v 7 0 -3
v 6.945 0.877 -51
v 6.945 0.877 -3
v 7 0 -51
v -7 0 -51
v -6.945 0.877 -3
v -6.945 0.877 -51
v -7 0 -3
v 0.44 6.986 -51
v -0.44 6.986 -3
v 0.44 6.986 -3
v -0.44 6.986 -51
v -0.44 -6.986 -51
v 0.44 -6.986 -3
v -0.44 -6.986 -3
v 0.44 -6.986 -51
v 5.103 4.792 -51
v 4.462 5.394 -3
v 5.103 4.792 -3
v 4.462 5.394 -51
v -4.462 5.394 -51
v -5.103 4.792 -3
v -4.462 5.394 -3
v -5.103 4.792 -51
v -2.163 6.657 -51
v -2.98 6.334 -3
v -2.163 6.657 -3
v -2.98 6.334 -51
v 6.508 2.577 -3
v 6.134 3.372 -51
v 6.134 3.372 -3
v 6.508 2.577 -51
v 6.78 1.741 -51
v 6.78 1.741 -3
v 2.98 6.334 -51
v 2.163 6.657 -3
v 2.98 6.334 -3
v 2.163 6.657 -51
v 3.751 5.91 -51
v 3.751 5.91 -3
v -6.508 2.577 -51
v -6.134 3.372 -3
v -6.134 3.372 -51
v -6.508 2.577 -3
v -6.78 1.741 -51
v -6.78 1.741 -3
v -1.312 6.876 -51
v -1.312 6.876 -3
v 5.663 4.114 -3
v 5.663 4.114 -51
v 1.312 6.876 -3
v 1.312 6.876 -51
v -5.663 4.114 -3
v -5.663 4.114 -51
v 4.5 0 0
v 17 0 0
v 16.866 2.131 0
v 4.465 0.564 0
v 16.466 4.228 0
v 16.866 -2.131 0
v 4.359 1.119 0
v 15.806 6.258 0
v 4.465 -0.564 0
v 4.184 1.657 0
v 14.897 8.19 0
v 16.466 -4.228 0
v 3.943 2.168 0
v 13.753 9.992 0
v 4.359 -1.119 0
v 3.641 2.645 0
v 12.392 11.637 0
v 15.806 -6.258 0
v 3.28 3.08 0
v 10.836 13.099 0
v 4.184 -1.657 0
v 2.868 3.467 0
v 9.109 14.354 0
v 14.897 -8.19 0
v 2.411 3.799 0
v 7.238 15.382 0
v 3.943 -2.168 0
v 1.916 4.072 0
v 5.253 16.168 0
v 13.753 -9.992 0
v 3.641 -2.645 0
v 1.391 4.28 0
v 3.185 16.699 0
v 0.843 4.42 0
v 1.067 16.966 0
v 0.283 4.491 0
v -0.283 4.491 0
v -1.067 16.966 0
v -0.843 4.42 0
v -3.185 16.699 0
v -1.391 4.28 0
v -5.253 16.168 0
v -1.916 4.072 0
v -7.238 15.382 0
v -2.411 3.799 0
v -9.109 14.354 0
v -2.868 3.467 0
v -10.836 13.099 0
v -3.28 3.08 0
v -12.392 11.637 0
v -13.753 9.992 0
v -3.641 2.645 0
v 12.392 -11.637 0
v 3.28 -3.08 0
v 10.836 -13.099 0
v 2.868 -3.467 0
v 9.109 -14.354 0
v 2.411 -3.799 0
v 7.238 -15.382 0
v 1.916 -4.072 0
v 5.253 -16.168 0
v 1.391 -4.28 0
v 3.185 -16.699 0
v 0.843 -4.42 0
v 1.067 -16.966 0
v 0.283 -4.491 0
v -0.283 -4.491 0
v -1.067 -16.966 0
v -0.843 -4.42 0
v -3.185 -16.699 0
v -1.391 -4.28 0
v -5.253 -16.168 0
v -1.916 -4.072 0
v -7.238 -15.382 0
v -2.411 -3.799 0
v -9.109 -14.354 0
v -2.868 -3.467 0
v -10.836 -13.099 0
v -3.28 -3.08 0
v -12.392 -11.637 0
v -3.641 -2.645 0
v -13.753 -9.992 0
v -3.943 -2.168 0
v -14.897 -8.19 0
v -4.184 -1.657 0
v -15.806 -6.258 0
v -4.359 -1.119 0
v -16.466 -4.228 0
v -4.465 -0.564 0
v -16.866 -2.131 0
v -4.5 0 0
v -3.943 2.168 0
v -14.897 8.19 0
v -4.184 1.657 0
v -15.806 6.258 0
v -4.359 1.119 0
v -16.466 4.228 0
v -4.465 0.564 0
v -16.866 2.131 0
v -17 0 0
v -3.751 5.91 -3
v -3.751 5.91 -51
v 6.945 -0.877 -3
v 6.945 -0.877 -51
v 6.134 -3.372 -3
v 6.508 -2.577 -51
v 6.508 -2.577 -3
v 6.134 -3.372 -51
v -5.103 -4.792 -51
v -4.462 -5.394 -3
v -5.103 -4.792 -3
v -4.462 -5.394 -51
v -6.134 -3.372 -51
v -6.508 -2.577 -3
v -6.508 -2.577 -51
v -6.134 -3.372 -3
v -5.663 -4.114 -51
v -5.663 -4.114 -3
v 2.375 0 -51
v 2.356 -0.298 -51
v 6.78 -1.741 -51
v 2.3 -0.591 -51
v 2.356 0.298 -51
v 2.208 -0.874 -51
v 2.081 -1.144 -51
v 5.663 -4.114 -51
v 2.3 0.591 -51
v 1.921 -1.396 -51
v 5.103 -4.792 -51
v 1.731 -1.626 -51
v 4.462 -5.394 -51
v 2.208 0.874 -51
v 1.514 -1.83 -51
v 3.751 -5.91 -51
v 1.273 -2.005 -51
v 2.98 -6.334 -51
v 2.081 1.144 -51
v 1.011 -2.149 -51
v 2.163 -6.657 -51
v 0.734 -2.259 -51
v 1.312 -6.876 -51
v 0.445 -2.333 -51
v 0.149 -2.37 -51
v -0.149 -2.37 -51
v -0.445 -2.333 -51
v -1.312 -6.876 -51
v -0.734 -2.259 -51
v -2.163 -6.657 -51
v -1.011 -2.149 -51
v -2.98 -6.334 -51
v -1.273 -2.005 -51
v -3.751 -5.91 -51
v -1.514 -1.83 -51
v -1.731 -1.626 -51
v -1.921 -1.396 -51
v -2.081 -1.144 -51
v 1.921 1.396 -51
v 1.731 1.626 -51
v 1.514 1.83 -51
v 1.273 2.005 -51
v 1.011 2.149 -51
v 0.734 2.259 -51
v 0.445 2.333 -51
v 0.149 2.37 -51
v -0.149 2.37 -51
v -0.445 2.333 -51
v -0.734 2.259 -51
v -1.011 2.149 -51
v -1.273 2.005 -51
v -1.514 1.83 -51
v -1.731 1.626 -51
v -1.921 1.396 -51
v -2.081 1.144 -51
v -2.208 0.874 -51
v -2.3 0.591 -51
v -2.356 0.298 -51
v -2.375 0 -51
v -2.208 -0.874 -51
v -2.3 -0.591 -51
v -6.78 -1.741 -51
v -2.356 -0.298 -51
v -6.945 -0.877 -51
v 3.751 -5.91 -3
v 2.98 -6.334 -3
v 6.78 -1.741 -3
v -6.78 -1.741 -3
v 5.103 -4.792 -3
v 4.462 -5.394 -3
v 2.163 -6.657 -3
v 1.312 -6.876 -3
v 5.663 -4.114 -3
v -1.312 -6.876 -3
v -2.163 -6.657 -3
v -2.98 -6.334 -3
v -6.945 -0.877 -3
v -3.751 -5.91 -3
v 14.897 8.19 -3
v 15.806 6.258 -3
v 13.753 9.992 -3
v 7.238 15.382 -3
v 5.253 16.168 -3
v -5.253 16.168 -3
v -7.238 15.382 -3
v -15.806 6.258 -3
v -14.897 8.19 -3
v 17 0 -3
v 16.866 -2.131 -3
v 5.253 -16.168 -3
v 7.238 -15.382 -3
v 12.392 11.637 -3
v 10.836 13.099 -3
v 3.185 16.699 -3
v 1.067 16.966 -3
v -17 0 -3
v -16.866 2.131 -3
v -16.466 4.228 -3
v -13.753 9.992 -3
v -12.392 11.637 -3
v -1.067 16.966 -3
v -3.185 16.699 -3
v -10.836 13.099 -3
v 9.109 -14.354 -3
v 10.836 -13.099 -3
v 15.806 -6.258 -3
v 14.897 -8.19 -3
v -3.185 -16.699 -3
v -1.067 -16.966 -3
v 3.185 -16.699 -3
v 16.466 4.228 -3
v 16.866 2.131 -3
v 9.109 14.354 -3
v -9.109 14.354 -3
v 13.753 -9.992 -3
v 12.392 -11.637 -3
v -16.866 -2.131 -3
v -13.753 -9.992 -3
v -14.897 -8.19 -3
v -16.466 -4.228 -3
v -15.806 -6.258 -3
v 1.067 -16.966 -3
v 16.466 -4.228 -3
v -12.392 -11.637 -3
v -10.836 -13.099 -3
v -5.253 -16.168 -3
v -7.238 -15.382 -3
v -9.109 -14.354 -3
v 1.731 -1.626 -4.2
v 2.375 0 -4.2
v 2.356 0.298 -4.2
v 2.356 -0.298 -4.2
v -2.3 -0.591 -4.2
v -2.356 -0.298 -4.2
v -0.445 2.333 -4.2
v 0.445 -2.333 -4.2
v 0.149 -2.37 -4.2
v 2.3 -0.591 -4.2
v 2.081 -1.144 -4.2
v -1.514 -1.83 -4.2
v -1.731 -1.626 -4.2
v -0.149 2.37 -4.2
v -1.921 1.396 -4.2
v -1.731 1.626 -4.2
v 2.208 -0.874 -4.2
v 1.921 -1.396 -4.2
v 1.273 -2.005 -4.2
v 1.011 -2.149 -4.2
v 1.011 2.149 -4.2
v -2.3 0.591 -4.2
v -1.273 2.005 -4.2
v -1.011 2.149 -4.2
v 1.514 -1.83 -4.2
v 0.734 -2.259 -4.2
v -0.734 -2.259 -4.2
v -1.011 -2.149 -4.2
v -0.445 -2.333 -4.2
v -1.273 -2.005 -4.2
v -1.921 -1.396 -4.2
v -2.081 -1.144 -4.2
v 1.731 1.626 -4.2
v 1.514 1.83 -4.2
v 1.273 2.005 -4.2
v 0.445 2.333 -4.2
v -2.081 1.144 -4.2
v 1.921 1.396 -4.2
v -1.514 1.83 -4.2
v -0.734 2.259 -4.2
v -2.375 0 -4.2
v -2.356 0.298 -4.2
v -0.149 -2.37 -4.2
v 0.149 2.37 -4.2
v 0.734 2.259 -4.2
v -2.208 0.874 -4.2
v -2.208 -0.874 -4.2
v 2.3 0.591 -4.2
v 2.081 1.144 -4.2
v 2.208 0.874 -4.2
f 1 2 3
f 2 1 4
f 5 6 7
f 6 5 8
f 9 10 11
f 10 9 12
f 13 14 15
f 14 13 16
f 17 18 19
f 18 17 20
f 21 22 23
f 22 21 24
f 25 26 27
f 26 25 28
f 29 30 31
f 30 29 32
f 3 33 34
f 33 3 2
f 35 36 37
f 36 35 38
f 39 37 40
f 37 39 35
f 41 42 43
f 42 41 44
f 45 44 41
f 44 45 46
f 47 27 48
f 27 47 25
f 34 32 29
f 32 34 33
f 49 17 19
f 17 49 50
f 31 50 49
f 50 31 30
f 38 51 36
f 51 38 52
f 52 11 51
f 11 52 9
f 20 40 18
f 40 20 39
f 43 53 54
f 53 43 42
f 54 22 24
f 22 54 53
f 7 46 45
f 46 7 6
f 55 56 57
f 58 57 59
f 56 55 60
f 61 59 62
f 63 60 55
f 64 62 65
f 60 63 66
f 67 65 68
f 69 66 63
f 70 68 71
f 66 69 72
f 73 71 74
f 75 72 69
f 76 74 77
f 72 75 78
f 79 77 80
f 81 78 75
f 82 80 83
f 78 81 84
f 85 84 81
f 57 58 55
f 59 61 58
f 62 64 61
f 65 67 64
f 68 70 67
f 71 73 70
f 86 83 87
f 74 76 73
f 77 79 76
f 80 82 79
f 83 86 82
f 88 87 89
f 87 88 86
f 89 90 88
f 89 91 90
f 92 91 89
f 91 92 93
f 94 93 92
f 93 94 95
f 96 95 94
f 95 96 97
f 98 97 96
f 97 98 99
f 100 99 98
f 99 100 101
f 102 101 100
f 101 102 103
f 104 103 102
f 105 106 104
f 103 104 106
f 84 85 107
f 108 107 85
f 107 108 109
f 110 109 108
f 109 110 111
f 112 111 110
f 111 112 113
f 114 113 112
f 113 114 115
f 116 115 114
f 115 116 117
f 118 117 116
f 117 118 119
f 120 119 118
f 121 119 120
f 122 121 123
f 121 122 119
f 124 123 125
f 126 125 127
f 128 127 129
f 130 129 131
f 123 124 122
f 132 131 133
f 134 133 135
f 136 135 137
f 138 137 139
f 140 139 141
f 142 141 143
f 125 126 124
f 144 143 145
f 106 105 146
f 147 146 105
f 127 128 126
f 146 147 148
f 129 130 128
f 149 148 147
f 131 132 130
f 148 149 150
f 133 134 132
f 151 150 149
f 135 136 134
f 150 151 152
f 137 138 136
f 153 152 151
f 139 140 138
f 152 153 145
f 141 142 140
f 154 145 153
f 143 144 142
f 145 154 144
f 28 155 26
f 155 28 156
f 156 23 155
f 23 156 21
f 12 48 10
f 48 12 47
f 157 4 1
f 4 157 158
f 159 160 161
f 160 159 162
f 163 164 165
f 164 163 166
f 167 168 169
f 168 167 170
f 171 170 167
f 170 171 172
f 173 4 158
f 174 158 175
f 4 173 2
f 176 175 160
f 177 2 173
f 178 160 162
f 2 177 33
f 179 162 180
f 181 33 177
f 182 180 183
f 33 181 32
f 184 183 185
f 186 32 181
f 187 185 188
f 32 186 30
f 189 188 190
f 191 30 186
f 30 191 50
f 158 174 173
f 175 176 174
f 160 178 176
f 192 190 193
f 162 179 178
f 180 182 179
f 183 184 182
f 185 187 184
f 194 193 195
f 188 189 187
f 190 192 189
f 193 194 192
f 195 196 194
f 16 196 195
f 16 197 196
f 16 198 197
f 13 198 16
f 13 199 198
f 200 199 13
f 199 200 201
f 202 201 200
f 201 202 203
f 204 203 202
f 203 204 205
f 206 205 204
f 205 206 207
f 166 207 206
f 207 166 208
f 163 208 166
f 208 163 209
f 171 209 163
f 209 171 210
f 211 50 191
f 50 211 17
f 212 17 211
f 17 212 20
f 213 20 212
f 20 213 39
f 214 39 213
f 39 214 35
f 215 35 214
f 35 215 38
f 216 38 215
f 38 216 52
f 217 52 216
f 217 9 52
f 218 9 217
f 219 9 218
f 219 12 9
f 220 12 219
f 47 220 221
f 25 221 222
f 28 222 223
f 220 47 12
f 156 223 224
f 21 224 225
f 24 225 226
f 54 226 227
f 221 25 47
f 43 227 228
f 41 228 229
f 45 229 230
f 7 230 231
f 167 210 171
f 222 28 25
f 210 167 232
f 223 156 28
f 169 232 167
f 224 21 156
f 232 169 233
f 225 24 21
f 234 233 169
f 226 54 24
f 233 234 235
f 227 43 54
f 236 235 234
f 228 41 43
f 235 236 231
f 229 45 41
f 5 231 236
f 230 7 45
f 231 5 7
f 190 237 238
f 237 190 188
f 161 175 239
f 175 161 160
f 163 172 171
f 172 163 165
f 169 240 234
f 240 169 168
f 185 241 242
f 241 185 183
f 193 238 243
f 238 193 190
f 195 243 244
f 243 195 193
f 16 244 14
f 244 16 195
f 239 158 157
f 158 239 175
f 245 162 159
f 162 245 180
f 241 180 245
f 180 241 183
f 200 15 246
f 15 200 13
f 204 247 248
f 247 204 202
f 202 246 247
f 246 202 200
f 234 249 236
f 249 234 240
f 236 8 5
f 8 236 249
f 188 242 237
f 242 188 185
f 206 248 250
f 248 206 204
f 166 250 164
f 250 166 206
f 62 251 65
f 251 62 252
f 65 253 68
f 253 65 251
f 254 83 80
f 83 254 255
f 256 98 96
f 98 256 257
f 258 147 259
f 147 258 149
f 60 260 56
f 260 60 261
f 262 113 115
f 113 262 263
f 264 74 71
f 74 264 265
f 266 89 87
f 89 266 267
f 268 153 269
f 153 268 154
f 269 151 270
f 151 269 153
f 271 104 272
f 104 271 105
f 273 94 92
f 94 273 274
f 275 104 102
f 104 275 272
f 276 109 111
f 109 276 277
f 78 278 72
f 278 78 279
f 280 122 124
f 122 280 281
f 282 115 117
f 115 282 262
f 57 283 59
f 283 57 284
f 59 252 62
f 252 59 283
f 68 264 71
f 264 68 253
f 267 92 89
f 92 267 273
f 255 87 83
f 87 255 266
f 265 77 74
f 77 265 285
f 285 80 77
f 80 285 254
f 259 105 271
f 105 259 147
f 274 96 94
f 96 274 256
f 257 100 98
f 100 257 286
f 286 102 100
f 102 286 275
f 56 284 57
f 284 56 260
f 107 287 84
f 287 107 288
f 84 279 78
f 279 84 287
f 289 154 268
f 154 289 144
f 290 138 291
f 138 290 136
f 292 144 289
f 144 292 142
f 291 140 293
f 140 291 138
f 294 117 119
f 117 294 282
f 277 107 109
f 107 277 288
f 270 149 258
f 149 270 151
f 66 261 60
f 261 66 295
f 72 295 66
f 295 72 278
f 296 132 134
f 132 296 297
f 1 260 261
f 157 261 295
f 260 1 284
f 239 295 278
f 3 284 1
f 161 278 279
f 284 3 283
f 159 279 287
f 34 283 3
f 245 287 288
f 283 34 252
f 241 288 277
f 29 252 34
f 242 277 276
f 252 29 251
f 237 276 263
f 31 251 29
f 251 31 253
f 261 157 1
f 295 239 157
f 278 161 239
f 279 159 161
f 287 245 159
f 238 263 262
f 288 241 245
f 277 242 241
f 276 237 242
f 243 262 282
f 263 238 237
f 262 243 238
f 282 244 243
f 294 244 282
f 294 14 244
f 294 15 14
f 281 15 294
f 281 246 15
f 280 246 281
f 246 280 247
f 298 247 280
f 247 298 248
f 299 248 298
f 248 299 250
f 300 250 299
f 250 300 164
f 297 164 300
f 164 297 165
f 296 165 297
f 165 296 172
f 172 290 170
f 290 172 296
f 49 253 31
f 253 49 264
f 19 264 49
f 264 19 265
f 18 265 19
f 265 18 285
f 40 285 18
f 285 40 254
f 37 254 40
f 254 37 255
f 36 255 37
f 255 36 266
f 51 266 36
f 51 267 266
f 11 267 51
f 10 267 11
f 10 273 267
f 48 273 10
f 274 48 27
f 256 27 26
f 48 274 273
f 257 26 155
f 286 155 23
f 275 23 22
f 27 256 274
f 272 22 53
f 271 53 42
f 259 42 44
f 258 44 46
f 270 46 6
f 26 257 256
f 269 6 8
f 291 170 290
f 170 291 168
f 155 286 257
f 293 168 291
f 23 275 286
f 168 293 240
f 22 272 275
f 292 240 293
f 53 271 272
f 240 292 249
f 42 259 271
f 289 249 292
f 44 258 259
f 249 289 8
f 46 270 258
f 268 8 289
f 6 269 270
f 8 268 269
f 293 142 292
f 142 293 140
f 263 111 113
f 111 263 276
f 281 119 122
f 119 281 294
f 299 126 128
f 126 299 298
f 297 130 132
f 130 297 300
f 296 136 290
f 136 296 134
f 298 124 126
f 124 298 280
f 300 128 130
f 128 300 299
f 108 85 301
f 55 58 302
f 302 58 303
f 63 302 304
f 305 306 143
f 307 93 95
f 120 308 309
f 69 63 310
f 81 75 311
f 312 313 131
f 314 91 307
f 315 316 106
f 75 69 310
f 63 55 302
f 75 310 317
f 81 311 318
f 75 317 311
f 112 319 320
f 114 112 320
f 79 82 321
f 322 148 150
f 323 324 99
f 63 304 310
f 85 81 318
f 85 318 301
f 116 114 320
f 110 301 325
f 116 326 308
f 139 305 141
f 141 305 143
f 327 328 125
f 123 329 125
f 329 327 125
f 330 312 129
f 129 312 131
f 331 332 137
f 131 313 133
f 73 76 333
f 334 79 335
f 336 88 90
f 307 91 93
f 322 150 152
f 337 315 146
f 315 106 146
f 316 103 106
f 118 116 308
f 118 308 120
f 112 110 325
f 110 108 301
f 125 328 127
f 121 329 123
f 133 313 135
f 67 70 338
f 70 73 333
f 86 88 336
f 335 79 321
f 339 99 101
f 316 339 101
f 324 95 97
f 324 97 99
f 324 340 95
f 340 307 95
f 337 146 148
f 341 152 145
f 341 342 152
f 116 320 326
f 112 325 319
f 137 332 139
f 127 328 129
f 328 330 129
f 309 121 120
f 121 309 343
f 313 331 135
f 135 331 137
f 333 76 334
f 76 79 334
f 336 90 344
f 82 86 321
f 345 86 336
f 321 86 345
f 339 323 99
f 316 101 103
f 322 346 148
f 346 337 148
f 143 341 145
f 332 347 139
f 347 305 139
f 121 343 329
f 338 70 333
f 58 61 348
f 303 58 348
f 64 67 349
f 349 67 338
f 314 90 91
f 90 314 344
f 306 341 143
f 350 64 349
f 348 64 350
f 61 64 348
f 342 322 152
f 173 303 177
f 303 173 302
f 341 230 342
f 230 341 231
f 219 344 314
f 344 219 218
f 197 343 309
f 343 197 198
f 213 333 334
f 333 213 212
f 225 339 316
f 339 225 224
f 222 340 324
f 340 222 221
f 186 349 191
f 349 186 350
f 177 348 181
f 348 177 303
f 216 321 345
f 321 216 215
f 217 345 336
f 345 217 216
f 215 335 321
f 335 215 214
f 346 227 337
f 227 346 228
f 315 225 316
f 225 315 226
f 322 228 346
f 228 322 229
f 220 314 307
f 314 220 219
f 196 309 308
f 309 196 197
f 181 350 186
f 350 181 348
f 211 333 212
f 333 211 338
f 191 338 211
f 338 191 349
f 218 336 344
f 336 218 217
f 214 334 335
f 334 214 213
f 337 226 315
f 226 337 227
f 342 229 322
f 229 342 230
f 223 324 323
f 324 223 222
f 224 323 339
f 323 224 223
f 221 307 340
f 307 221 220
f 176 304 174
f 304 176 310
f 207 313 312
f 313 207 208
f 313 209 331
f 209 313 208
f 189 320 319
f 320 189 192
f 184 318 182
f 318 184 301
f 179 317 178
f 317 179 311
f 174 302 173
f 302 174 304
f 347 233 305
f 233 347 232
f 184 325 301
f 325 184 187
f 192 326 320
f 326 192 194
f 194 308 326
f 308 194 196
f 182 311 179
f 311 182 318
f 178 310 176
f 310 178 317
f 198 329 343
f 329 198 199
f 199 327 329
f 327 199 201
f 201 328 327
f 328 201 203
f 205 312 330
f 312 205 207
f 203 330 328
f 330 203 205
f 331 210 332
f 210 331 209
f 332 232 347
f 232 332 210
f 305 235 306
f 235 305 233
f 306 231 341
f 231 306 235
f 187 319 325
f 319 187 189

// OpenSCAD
$fn = 50;


difference() {
	union() {
		translate(v = [0, 0, -51.0000000000]) {
			cylinder(h = 51, r = 7.0000000000);
		}
		translate(v = [0, 0, -3.0000000000]) {
			cylinder(h = 3, r = 17.0000000000);
		}
	}
	union() {
		translate(v = [0, 0, 0]) {
			rotate(a = [0, 0, 0]) {
				difference() {
					union() {
						#translate(v = [0, 0, -51.0000000000]) {
							cylinder(h = 51, r = 2.2500000000);
						}
						#translate(v = [0, 0, -4.2000000000]) {
							cylinder(h = 4.2000000000, r = 7.0000000000, r1 = 2.3750000000, r2 = 4.5000000000);
						}
						#translate(v = [0, 0, -51.0000000000]) {
							cylinder(h = 51, r = 2.3750000000);
						}
						#translate(v = [0, 0, -51.0000000000]) {
							cylinder(h = 51, r = 2.2500000000);
						}
					}
					union();
				}
			}
		}
	}
}
